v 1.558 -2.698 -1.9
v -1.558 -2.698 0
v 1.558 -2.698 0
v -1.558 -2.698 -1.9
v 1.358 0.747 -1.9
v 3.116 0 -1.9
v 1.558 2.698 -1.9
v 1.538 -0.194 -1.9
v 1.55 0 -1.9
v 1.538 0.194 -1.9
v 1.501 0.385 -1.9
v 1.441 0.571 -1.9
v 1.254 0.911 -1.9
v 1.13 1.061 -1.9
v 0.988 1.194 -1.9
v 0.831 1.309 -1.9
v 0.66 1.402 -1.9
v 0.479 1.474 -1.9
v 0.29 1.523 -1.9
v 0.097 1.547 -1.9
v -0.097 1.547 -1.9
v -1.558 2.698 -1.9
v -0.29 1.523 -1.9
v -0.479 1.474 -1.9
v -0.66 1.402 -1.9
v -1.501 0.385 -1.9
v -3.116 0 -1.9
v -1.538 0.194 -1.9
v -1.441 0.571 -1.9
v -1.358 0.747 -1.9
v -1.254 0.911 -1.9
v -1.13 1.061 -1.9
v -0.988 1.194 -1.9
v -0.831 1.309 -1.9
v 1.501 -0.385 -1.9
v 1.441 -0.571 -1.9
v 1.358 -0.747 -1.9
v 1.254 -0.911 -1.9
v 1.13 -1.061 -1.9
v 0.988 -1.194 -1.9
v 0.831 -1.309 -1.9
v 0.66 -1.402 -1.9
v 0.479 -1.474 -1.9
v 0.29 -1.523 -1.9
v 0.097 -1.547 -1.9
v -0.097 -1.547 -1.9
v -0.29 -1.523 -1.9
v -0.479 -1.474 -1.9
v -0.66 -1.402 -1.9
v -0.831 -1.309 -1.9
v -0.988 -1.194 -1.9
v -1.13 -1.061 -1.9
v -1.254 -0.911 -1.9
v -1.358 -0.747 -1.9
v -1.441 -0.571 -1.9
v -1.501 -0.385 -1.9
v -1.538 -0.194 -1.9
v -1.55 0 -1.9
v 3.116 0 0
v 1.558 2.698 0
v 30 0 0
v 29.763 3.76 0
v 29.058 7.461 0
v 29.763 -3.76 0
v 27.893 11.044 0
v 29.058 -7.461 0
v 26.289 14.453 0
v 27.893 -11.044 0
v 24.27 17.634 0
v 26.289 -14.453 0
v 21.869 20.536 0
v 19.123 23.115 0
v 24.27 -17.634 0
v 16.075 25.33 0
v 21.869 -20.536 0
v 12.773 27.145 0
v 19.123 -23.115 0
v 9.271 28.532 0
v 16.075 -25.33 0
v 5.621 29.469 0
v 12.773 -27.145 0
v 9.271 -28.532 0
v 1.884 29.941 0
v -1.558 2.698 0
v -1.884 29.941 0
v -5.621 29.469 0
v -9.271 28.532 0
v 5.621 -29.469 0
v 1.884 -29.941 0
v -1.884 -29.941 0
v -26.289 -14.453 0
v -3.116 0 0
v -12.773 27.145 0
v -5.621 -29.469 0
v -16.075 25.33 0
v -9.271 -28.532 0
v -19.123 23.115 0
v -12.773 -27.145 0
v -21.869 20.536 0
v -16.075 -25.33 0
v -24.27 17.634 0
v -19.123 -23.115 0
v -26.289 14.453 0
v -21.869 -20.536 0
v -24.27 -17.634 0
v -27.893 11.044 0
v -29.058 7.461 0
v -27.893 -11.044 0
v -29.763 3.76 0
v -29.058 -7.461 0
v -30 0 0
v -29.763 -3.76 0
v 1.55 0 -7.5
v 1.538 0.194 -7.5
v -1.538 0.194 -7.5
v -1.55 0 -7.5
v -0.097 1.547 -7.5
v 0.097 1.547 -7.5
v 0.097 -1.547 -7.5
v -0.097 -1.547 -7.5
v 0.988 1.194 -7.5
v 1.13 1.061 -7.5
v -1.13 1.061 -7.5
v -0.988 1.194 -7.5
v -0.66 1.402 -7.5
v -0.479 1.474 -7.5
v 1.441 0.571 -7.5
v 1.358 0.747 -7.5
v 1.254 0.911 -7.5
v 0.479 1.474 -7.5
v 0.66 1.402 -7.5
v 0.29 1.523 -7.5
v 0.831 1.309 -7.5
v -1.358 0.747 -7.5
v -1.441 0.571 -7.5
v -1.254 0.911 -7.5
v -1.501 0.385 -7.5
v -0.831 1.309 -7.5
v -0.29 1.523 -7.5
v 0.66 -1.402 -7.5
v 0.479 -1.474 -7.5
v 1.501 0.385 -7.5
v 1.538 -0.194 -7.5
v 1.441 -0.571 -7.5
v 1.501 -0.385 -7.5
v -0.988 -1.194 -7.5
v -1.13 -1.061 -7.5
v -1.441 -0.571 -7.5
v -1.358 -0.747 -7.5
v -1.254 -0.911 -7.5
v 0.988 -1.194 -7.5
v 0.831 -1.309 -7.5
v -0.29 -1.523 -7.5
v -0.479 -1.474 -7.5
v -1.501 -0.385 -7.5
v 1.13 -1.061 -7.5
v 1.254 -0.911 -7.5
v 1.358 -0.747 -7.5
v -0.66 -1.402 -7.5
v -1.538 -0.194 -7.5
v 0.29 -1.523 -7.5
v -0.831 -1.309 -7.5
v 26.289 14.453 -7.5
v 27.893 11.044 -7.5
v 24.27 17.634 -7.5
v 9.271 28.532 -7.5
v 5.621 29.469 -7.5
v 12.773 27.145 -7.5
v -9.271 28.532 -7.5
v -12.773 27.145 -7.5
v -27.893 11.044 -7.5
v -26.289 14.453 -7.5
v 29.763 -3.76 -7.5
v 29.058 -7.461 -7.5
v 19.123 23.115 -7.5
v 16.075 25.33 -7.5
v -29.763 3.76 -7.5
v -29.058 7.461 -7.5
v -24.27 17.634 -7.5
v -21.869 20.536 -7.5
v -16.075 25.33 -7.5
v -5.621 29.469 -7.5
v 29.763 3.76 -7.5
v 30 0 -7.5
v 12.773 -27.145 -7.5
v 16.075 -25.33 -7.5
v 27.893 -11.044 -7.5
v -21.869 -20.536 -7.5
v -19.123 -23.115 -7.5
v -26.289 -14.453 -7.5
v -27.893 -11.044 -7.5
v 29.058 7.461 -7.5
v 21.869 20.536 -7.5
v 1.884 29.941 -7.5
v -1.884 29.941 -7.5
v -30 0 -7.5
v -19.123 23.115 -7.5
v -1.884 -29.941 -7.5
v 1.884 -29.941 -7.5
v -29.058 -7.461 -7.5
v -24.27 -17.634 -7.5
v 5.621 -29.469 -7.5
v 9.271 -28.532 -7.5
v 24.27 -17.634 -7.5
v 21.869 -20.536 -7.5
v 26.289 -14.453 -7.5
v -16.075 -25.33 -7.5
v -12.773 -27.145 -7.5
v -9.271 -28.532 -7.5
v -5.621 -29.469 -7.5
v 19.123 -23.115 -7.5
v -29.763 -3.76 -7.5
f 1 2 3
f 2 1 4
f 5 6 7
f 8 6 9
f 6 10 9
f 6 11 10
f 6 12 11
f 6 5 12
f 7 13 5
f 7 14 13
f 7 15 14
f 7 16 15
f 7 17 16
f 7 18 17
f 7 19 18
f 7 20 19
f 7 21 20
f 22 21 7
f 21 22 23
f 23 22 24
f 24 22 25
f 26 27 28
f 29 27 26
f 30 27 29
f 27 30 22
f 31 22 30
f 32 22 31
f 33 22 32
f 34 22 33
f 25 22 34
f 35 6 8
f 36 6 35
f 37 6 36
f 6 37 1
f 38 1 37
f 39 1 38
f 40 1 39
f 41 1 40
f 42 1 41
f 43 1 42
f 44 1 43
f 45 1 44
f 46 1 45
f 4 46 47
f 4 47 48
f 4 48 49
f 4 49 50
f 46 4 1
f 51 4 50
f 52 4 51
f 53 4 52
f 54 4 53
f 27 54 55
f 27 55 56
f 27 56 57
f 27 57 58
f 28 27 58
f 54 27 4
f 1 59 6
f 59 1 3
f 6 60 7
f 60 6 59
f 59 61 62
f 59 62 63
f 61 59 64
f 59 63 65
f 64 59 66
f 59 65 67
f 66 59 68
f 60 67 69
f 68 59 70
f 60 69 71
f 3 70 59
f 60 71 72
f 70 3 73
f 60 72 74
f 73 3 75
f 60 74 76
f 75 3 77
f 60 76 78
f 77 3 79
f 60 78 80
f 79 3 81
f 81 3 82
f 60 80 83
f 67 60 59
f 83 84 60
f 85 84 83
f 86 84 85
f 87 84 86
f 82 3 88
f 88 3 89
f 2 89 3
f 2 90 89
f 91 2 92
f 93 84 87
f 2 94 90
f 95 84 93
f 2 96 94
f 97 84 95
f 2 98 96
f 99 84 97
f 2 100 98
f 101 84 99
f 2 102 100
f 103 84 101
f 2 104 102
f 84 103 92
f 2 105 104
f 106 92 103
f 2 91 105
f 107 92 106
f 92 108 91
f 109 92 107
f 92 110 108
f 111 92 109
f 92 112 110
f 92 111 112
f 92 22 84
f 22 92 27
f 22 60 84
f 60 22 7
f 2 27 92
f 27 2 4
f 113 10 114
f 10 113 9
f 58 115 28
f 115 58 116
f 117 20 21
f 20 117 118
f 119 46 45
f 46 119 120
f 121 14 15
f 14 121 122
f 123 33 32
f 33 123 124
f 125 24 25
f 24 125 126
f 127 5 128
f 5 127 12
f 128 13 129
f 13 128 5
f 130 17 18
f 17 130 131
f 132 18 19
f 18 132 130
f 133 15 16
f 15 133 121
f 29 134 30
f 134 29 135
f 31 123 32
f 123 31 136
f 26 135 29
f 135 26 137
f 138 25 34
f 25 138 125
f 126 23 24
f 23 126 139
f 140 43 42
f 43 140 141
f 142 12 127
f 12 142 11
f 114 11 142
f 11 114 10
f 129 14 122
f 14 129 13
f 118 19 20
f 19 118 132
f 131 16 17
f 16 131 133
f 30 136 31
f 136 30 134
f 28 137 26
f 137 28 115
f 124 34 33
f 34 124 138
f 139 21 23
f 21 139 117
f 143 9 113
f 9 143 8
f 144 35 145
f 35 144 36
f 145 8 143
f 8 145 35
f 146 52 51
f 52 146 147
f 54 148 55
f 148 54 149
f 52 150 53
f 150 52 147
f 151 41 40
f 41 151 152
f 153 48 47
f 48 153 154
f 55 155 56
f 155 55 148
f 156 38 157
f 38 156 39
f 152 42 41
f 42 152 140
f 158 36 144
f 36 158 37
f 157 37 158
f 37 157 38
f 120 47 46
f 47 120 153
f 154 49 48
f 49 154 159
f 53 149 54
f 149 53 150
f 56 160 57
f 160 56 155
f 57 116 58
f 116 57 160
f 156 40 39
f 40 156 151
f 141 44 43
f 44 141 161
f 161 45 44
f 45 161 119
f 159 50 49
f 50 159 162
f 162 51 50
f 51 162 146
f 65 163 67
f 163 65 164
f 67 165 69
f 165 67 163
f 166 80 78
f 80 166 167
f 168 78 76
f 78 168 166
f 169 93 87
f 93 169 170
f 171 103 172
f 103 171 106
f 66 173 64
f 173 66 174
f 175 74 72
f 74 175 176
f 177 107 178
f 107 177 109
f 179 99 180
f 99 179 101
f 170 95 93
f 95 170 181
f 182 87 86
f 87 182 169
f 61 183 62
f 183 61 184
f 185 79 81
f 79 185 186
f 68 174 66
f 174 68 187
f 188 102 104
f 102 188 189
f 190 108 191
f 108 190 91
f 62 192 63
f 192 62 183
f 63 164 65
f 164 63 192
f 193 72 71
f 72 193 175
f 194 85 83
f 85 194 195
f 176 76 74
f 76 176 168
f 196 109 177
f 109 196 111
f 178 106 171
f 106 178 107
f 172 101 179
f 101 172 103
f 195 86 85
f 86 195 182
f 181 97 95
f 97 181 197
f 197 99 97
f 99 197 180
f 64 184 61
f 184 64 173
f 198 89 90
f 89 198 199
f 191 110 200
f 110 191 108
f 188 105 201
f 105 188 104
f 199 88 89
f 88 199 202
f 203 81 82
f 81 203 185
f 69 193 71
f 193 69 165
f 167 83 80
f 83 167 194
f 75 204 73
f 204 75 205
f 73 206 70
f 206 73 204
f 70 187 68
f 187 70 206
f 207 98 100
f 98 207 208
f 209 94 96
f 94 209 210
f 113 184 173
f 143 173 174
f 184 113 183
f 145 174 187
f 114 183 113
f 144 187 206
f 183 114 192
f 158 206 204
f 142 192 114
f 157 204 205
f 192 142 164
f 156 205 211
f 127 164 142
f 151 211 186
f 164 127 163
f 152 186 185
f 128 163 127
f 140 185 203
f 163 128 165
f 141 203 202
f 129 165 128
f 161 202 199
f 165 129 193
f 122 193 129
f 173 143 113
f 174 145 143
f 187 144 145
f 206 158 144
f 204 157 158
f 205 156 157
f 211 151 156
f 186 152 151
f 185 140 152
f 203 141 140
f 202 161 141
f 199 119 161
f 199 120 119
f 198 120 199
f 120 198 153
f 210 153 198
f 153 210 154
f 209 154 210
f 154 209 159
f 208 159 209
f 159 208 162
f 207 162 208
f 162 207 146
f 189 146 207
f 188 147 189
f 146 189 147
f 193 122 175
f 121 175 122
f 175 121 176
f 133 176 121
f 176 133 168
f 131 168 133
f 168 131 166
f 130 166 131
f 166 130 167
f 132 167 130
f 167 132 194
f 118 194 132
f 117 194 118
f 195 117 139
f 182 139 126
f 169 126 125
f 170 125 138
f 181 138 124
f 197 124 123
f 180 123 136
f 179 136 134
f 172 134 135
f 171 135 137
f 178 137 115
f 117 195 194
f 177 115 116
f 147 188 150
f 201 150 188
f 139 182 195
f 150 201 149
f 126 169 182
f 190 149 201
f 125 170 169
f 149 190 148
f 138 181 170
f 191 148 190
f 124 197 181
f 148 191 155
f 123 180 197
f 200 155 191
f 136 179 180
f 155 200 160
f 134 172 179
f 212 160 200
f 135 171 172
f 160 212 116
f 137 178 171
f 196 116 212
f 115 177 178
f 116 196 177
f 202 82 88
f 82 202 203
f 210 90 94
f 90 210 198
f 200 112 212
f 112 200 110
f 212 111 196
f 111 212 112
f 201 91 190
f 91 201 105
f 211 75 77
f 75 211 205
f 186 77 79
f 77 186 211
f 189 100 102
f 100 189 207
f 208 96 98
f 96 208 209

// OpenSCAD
$fn = 50;


difference() {
	union() {
		translate(v = [0, 0, -7.5000000000]) {
			cylinder(h = 7.5000000000, r = 30.0000000000);
		}
	}
	union() {
		translate(v = [0, 0, 0]) {
			rotate(a = [0, 0, 0]) {
				difference() {
					union() {
						translate(v = [0, 0, -1.9000000000]) {
							linear_extrude(height = 1.9000000000) {
								polygon(points = [[3.1158000000, 0.0000000000], [1.5579000000, 2.6983619531], [-1.5579000000, 2.6983619531], [-3.1158000000, 0.0000000000], [-1.5579000000, -2.6983619531], [1.5579000000, -2.6983619531]]);
							}
						}
					}
					union();
				}
			}
		}
		#translate(v = [0, 0, -100.0000000000]) {
			cylinder(h = 200, r = 1.5500000000);
		}
	}
}
